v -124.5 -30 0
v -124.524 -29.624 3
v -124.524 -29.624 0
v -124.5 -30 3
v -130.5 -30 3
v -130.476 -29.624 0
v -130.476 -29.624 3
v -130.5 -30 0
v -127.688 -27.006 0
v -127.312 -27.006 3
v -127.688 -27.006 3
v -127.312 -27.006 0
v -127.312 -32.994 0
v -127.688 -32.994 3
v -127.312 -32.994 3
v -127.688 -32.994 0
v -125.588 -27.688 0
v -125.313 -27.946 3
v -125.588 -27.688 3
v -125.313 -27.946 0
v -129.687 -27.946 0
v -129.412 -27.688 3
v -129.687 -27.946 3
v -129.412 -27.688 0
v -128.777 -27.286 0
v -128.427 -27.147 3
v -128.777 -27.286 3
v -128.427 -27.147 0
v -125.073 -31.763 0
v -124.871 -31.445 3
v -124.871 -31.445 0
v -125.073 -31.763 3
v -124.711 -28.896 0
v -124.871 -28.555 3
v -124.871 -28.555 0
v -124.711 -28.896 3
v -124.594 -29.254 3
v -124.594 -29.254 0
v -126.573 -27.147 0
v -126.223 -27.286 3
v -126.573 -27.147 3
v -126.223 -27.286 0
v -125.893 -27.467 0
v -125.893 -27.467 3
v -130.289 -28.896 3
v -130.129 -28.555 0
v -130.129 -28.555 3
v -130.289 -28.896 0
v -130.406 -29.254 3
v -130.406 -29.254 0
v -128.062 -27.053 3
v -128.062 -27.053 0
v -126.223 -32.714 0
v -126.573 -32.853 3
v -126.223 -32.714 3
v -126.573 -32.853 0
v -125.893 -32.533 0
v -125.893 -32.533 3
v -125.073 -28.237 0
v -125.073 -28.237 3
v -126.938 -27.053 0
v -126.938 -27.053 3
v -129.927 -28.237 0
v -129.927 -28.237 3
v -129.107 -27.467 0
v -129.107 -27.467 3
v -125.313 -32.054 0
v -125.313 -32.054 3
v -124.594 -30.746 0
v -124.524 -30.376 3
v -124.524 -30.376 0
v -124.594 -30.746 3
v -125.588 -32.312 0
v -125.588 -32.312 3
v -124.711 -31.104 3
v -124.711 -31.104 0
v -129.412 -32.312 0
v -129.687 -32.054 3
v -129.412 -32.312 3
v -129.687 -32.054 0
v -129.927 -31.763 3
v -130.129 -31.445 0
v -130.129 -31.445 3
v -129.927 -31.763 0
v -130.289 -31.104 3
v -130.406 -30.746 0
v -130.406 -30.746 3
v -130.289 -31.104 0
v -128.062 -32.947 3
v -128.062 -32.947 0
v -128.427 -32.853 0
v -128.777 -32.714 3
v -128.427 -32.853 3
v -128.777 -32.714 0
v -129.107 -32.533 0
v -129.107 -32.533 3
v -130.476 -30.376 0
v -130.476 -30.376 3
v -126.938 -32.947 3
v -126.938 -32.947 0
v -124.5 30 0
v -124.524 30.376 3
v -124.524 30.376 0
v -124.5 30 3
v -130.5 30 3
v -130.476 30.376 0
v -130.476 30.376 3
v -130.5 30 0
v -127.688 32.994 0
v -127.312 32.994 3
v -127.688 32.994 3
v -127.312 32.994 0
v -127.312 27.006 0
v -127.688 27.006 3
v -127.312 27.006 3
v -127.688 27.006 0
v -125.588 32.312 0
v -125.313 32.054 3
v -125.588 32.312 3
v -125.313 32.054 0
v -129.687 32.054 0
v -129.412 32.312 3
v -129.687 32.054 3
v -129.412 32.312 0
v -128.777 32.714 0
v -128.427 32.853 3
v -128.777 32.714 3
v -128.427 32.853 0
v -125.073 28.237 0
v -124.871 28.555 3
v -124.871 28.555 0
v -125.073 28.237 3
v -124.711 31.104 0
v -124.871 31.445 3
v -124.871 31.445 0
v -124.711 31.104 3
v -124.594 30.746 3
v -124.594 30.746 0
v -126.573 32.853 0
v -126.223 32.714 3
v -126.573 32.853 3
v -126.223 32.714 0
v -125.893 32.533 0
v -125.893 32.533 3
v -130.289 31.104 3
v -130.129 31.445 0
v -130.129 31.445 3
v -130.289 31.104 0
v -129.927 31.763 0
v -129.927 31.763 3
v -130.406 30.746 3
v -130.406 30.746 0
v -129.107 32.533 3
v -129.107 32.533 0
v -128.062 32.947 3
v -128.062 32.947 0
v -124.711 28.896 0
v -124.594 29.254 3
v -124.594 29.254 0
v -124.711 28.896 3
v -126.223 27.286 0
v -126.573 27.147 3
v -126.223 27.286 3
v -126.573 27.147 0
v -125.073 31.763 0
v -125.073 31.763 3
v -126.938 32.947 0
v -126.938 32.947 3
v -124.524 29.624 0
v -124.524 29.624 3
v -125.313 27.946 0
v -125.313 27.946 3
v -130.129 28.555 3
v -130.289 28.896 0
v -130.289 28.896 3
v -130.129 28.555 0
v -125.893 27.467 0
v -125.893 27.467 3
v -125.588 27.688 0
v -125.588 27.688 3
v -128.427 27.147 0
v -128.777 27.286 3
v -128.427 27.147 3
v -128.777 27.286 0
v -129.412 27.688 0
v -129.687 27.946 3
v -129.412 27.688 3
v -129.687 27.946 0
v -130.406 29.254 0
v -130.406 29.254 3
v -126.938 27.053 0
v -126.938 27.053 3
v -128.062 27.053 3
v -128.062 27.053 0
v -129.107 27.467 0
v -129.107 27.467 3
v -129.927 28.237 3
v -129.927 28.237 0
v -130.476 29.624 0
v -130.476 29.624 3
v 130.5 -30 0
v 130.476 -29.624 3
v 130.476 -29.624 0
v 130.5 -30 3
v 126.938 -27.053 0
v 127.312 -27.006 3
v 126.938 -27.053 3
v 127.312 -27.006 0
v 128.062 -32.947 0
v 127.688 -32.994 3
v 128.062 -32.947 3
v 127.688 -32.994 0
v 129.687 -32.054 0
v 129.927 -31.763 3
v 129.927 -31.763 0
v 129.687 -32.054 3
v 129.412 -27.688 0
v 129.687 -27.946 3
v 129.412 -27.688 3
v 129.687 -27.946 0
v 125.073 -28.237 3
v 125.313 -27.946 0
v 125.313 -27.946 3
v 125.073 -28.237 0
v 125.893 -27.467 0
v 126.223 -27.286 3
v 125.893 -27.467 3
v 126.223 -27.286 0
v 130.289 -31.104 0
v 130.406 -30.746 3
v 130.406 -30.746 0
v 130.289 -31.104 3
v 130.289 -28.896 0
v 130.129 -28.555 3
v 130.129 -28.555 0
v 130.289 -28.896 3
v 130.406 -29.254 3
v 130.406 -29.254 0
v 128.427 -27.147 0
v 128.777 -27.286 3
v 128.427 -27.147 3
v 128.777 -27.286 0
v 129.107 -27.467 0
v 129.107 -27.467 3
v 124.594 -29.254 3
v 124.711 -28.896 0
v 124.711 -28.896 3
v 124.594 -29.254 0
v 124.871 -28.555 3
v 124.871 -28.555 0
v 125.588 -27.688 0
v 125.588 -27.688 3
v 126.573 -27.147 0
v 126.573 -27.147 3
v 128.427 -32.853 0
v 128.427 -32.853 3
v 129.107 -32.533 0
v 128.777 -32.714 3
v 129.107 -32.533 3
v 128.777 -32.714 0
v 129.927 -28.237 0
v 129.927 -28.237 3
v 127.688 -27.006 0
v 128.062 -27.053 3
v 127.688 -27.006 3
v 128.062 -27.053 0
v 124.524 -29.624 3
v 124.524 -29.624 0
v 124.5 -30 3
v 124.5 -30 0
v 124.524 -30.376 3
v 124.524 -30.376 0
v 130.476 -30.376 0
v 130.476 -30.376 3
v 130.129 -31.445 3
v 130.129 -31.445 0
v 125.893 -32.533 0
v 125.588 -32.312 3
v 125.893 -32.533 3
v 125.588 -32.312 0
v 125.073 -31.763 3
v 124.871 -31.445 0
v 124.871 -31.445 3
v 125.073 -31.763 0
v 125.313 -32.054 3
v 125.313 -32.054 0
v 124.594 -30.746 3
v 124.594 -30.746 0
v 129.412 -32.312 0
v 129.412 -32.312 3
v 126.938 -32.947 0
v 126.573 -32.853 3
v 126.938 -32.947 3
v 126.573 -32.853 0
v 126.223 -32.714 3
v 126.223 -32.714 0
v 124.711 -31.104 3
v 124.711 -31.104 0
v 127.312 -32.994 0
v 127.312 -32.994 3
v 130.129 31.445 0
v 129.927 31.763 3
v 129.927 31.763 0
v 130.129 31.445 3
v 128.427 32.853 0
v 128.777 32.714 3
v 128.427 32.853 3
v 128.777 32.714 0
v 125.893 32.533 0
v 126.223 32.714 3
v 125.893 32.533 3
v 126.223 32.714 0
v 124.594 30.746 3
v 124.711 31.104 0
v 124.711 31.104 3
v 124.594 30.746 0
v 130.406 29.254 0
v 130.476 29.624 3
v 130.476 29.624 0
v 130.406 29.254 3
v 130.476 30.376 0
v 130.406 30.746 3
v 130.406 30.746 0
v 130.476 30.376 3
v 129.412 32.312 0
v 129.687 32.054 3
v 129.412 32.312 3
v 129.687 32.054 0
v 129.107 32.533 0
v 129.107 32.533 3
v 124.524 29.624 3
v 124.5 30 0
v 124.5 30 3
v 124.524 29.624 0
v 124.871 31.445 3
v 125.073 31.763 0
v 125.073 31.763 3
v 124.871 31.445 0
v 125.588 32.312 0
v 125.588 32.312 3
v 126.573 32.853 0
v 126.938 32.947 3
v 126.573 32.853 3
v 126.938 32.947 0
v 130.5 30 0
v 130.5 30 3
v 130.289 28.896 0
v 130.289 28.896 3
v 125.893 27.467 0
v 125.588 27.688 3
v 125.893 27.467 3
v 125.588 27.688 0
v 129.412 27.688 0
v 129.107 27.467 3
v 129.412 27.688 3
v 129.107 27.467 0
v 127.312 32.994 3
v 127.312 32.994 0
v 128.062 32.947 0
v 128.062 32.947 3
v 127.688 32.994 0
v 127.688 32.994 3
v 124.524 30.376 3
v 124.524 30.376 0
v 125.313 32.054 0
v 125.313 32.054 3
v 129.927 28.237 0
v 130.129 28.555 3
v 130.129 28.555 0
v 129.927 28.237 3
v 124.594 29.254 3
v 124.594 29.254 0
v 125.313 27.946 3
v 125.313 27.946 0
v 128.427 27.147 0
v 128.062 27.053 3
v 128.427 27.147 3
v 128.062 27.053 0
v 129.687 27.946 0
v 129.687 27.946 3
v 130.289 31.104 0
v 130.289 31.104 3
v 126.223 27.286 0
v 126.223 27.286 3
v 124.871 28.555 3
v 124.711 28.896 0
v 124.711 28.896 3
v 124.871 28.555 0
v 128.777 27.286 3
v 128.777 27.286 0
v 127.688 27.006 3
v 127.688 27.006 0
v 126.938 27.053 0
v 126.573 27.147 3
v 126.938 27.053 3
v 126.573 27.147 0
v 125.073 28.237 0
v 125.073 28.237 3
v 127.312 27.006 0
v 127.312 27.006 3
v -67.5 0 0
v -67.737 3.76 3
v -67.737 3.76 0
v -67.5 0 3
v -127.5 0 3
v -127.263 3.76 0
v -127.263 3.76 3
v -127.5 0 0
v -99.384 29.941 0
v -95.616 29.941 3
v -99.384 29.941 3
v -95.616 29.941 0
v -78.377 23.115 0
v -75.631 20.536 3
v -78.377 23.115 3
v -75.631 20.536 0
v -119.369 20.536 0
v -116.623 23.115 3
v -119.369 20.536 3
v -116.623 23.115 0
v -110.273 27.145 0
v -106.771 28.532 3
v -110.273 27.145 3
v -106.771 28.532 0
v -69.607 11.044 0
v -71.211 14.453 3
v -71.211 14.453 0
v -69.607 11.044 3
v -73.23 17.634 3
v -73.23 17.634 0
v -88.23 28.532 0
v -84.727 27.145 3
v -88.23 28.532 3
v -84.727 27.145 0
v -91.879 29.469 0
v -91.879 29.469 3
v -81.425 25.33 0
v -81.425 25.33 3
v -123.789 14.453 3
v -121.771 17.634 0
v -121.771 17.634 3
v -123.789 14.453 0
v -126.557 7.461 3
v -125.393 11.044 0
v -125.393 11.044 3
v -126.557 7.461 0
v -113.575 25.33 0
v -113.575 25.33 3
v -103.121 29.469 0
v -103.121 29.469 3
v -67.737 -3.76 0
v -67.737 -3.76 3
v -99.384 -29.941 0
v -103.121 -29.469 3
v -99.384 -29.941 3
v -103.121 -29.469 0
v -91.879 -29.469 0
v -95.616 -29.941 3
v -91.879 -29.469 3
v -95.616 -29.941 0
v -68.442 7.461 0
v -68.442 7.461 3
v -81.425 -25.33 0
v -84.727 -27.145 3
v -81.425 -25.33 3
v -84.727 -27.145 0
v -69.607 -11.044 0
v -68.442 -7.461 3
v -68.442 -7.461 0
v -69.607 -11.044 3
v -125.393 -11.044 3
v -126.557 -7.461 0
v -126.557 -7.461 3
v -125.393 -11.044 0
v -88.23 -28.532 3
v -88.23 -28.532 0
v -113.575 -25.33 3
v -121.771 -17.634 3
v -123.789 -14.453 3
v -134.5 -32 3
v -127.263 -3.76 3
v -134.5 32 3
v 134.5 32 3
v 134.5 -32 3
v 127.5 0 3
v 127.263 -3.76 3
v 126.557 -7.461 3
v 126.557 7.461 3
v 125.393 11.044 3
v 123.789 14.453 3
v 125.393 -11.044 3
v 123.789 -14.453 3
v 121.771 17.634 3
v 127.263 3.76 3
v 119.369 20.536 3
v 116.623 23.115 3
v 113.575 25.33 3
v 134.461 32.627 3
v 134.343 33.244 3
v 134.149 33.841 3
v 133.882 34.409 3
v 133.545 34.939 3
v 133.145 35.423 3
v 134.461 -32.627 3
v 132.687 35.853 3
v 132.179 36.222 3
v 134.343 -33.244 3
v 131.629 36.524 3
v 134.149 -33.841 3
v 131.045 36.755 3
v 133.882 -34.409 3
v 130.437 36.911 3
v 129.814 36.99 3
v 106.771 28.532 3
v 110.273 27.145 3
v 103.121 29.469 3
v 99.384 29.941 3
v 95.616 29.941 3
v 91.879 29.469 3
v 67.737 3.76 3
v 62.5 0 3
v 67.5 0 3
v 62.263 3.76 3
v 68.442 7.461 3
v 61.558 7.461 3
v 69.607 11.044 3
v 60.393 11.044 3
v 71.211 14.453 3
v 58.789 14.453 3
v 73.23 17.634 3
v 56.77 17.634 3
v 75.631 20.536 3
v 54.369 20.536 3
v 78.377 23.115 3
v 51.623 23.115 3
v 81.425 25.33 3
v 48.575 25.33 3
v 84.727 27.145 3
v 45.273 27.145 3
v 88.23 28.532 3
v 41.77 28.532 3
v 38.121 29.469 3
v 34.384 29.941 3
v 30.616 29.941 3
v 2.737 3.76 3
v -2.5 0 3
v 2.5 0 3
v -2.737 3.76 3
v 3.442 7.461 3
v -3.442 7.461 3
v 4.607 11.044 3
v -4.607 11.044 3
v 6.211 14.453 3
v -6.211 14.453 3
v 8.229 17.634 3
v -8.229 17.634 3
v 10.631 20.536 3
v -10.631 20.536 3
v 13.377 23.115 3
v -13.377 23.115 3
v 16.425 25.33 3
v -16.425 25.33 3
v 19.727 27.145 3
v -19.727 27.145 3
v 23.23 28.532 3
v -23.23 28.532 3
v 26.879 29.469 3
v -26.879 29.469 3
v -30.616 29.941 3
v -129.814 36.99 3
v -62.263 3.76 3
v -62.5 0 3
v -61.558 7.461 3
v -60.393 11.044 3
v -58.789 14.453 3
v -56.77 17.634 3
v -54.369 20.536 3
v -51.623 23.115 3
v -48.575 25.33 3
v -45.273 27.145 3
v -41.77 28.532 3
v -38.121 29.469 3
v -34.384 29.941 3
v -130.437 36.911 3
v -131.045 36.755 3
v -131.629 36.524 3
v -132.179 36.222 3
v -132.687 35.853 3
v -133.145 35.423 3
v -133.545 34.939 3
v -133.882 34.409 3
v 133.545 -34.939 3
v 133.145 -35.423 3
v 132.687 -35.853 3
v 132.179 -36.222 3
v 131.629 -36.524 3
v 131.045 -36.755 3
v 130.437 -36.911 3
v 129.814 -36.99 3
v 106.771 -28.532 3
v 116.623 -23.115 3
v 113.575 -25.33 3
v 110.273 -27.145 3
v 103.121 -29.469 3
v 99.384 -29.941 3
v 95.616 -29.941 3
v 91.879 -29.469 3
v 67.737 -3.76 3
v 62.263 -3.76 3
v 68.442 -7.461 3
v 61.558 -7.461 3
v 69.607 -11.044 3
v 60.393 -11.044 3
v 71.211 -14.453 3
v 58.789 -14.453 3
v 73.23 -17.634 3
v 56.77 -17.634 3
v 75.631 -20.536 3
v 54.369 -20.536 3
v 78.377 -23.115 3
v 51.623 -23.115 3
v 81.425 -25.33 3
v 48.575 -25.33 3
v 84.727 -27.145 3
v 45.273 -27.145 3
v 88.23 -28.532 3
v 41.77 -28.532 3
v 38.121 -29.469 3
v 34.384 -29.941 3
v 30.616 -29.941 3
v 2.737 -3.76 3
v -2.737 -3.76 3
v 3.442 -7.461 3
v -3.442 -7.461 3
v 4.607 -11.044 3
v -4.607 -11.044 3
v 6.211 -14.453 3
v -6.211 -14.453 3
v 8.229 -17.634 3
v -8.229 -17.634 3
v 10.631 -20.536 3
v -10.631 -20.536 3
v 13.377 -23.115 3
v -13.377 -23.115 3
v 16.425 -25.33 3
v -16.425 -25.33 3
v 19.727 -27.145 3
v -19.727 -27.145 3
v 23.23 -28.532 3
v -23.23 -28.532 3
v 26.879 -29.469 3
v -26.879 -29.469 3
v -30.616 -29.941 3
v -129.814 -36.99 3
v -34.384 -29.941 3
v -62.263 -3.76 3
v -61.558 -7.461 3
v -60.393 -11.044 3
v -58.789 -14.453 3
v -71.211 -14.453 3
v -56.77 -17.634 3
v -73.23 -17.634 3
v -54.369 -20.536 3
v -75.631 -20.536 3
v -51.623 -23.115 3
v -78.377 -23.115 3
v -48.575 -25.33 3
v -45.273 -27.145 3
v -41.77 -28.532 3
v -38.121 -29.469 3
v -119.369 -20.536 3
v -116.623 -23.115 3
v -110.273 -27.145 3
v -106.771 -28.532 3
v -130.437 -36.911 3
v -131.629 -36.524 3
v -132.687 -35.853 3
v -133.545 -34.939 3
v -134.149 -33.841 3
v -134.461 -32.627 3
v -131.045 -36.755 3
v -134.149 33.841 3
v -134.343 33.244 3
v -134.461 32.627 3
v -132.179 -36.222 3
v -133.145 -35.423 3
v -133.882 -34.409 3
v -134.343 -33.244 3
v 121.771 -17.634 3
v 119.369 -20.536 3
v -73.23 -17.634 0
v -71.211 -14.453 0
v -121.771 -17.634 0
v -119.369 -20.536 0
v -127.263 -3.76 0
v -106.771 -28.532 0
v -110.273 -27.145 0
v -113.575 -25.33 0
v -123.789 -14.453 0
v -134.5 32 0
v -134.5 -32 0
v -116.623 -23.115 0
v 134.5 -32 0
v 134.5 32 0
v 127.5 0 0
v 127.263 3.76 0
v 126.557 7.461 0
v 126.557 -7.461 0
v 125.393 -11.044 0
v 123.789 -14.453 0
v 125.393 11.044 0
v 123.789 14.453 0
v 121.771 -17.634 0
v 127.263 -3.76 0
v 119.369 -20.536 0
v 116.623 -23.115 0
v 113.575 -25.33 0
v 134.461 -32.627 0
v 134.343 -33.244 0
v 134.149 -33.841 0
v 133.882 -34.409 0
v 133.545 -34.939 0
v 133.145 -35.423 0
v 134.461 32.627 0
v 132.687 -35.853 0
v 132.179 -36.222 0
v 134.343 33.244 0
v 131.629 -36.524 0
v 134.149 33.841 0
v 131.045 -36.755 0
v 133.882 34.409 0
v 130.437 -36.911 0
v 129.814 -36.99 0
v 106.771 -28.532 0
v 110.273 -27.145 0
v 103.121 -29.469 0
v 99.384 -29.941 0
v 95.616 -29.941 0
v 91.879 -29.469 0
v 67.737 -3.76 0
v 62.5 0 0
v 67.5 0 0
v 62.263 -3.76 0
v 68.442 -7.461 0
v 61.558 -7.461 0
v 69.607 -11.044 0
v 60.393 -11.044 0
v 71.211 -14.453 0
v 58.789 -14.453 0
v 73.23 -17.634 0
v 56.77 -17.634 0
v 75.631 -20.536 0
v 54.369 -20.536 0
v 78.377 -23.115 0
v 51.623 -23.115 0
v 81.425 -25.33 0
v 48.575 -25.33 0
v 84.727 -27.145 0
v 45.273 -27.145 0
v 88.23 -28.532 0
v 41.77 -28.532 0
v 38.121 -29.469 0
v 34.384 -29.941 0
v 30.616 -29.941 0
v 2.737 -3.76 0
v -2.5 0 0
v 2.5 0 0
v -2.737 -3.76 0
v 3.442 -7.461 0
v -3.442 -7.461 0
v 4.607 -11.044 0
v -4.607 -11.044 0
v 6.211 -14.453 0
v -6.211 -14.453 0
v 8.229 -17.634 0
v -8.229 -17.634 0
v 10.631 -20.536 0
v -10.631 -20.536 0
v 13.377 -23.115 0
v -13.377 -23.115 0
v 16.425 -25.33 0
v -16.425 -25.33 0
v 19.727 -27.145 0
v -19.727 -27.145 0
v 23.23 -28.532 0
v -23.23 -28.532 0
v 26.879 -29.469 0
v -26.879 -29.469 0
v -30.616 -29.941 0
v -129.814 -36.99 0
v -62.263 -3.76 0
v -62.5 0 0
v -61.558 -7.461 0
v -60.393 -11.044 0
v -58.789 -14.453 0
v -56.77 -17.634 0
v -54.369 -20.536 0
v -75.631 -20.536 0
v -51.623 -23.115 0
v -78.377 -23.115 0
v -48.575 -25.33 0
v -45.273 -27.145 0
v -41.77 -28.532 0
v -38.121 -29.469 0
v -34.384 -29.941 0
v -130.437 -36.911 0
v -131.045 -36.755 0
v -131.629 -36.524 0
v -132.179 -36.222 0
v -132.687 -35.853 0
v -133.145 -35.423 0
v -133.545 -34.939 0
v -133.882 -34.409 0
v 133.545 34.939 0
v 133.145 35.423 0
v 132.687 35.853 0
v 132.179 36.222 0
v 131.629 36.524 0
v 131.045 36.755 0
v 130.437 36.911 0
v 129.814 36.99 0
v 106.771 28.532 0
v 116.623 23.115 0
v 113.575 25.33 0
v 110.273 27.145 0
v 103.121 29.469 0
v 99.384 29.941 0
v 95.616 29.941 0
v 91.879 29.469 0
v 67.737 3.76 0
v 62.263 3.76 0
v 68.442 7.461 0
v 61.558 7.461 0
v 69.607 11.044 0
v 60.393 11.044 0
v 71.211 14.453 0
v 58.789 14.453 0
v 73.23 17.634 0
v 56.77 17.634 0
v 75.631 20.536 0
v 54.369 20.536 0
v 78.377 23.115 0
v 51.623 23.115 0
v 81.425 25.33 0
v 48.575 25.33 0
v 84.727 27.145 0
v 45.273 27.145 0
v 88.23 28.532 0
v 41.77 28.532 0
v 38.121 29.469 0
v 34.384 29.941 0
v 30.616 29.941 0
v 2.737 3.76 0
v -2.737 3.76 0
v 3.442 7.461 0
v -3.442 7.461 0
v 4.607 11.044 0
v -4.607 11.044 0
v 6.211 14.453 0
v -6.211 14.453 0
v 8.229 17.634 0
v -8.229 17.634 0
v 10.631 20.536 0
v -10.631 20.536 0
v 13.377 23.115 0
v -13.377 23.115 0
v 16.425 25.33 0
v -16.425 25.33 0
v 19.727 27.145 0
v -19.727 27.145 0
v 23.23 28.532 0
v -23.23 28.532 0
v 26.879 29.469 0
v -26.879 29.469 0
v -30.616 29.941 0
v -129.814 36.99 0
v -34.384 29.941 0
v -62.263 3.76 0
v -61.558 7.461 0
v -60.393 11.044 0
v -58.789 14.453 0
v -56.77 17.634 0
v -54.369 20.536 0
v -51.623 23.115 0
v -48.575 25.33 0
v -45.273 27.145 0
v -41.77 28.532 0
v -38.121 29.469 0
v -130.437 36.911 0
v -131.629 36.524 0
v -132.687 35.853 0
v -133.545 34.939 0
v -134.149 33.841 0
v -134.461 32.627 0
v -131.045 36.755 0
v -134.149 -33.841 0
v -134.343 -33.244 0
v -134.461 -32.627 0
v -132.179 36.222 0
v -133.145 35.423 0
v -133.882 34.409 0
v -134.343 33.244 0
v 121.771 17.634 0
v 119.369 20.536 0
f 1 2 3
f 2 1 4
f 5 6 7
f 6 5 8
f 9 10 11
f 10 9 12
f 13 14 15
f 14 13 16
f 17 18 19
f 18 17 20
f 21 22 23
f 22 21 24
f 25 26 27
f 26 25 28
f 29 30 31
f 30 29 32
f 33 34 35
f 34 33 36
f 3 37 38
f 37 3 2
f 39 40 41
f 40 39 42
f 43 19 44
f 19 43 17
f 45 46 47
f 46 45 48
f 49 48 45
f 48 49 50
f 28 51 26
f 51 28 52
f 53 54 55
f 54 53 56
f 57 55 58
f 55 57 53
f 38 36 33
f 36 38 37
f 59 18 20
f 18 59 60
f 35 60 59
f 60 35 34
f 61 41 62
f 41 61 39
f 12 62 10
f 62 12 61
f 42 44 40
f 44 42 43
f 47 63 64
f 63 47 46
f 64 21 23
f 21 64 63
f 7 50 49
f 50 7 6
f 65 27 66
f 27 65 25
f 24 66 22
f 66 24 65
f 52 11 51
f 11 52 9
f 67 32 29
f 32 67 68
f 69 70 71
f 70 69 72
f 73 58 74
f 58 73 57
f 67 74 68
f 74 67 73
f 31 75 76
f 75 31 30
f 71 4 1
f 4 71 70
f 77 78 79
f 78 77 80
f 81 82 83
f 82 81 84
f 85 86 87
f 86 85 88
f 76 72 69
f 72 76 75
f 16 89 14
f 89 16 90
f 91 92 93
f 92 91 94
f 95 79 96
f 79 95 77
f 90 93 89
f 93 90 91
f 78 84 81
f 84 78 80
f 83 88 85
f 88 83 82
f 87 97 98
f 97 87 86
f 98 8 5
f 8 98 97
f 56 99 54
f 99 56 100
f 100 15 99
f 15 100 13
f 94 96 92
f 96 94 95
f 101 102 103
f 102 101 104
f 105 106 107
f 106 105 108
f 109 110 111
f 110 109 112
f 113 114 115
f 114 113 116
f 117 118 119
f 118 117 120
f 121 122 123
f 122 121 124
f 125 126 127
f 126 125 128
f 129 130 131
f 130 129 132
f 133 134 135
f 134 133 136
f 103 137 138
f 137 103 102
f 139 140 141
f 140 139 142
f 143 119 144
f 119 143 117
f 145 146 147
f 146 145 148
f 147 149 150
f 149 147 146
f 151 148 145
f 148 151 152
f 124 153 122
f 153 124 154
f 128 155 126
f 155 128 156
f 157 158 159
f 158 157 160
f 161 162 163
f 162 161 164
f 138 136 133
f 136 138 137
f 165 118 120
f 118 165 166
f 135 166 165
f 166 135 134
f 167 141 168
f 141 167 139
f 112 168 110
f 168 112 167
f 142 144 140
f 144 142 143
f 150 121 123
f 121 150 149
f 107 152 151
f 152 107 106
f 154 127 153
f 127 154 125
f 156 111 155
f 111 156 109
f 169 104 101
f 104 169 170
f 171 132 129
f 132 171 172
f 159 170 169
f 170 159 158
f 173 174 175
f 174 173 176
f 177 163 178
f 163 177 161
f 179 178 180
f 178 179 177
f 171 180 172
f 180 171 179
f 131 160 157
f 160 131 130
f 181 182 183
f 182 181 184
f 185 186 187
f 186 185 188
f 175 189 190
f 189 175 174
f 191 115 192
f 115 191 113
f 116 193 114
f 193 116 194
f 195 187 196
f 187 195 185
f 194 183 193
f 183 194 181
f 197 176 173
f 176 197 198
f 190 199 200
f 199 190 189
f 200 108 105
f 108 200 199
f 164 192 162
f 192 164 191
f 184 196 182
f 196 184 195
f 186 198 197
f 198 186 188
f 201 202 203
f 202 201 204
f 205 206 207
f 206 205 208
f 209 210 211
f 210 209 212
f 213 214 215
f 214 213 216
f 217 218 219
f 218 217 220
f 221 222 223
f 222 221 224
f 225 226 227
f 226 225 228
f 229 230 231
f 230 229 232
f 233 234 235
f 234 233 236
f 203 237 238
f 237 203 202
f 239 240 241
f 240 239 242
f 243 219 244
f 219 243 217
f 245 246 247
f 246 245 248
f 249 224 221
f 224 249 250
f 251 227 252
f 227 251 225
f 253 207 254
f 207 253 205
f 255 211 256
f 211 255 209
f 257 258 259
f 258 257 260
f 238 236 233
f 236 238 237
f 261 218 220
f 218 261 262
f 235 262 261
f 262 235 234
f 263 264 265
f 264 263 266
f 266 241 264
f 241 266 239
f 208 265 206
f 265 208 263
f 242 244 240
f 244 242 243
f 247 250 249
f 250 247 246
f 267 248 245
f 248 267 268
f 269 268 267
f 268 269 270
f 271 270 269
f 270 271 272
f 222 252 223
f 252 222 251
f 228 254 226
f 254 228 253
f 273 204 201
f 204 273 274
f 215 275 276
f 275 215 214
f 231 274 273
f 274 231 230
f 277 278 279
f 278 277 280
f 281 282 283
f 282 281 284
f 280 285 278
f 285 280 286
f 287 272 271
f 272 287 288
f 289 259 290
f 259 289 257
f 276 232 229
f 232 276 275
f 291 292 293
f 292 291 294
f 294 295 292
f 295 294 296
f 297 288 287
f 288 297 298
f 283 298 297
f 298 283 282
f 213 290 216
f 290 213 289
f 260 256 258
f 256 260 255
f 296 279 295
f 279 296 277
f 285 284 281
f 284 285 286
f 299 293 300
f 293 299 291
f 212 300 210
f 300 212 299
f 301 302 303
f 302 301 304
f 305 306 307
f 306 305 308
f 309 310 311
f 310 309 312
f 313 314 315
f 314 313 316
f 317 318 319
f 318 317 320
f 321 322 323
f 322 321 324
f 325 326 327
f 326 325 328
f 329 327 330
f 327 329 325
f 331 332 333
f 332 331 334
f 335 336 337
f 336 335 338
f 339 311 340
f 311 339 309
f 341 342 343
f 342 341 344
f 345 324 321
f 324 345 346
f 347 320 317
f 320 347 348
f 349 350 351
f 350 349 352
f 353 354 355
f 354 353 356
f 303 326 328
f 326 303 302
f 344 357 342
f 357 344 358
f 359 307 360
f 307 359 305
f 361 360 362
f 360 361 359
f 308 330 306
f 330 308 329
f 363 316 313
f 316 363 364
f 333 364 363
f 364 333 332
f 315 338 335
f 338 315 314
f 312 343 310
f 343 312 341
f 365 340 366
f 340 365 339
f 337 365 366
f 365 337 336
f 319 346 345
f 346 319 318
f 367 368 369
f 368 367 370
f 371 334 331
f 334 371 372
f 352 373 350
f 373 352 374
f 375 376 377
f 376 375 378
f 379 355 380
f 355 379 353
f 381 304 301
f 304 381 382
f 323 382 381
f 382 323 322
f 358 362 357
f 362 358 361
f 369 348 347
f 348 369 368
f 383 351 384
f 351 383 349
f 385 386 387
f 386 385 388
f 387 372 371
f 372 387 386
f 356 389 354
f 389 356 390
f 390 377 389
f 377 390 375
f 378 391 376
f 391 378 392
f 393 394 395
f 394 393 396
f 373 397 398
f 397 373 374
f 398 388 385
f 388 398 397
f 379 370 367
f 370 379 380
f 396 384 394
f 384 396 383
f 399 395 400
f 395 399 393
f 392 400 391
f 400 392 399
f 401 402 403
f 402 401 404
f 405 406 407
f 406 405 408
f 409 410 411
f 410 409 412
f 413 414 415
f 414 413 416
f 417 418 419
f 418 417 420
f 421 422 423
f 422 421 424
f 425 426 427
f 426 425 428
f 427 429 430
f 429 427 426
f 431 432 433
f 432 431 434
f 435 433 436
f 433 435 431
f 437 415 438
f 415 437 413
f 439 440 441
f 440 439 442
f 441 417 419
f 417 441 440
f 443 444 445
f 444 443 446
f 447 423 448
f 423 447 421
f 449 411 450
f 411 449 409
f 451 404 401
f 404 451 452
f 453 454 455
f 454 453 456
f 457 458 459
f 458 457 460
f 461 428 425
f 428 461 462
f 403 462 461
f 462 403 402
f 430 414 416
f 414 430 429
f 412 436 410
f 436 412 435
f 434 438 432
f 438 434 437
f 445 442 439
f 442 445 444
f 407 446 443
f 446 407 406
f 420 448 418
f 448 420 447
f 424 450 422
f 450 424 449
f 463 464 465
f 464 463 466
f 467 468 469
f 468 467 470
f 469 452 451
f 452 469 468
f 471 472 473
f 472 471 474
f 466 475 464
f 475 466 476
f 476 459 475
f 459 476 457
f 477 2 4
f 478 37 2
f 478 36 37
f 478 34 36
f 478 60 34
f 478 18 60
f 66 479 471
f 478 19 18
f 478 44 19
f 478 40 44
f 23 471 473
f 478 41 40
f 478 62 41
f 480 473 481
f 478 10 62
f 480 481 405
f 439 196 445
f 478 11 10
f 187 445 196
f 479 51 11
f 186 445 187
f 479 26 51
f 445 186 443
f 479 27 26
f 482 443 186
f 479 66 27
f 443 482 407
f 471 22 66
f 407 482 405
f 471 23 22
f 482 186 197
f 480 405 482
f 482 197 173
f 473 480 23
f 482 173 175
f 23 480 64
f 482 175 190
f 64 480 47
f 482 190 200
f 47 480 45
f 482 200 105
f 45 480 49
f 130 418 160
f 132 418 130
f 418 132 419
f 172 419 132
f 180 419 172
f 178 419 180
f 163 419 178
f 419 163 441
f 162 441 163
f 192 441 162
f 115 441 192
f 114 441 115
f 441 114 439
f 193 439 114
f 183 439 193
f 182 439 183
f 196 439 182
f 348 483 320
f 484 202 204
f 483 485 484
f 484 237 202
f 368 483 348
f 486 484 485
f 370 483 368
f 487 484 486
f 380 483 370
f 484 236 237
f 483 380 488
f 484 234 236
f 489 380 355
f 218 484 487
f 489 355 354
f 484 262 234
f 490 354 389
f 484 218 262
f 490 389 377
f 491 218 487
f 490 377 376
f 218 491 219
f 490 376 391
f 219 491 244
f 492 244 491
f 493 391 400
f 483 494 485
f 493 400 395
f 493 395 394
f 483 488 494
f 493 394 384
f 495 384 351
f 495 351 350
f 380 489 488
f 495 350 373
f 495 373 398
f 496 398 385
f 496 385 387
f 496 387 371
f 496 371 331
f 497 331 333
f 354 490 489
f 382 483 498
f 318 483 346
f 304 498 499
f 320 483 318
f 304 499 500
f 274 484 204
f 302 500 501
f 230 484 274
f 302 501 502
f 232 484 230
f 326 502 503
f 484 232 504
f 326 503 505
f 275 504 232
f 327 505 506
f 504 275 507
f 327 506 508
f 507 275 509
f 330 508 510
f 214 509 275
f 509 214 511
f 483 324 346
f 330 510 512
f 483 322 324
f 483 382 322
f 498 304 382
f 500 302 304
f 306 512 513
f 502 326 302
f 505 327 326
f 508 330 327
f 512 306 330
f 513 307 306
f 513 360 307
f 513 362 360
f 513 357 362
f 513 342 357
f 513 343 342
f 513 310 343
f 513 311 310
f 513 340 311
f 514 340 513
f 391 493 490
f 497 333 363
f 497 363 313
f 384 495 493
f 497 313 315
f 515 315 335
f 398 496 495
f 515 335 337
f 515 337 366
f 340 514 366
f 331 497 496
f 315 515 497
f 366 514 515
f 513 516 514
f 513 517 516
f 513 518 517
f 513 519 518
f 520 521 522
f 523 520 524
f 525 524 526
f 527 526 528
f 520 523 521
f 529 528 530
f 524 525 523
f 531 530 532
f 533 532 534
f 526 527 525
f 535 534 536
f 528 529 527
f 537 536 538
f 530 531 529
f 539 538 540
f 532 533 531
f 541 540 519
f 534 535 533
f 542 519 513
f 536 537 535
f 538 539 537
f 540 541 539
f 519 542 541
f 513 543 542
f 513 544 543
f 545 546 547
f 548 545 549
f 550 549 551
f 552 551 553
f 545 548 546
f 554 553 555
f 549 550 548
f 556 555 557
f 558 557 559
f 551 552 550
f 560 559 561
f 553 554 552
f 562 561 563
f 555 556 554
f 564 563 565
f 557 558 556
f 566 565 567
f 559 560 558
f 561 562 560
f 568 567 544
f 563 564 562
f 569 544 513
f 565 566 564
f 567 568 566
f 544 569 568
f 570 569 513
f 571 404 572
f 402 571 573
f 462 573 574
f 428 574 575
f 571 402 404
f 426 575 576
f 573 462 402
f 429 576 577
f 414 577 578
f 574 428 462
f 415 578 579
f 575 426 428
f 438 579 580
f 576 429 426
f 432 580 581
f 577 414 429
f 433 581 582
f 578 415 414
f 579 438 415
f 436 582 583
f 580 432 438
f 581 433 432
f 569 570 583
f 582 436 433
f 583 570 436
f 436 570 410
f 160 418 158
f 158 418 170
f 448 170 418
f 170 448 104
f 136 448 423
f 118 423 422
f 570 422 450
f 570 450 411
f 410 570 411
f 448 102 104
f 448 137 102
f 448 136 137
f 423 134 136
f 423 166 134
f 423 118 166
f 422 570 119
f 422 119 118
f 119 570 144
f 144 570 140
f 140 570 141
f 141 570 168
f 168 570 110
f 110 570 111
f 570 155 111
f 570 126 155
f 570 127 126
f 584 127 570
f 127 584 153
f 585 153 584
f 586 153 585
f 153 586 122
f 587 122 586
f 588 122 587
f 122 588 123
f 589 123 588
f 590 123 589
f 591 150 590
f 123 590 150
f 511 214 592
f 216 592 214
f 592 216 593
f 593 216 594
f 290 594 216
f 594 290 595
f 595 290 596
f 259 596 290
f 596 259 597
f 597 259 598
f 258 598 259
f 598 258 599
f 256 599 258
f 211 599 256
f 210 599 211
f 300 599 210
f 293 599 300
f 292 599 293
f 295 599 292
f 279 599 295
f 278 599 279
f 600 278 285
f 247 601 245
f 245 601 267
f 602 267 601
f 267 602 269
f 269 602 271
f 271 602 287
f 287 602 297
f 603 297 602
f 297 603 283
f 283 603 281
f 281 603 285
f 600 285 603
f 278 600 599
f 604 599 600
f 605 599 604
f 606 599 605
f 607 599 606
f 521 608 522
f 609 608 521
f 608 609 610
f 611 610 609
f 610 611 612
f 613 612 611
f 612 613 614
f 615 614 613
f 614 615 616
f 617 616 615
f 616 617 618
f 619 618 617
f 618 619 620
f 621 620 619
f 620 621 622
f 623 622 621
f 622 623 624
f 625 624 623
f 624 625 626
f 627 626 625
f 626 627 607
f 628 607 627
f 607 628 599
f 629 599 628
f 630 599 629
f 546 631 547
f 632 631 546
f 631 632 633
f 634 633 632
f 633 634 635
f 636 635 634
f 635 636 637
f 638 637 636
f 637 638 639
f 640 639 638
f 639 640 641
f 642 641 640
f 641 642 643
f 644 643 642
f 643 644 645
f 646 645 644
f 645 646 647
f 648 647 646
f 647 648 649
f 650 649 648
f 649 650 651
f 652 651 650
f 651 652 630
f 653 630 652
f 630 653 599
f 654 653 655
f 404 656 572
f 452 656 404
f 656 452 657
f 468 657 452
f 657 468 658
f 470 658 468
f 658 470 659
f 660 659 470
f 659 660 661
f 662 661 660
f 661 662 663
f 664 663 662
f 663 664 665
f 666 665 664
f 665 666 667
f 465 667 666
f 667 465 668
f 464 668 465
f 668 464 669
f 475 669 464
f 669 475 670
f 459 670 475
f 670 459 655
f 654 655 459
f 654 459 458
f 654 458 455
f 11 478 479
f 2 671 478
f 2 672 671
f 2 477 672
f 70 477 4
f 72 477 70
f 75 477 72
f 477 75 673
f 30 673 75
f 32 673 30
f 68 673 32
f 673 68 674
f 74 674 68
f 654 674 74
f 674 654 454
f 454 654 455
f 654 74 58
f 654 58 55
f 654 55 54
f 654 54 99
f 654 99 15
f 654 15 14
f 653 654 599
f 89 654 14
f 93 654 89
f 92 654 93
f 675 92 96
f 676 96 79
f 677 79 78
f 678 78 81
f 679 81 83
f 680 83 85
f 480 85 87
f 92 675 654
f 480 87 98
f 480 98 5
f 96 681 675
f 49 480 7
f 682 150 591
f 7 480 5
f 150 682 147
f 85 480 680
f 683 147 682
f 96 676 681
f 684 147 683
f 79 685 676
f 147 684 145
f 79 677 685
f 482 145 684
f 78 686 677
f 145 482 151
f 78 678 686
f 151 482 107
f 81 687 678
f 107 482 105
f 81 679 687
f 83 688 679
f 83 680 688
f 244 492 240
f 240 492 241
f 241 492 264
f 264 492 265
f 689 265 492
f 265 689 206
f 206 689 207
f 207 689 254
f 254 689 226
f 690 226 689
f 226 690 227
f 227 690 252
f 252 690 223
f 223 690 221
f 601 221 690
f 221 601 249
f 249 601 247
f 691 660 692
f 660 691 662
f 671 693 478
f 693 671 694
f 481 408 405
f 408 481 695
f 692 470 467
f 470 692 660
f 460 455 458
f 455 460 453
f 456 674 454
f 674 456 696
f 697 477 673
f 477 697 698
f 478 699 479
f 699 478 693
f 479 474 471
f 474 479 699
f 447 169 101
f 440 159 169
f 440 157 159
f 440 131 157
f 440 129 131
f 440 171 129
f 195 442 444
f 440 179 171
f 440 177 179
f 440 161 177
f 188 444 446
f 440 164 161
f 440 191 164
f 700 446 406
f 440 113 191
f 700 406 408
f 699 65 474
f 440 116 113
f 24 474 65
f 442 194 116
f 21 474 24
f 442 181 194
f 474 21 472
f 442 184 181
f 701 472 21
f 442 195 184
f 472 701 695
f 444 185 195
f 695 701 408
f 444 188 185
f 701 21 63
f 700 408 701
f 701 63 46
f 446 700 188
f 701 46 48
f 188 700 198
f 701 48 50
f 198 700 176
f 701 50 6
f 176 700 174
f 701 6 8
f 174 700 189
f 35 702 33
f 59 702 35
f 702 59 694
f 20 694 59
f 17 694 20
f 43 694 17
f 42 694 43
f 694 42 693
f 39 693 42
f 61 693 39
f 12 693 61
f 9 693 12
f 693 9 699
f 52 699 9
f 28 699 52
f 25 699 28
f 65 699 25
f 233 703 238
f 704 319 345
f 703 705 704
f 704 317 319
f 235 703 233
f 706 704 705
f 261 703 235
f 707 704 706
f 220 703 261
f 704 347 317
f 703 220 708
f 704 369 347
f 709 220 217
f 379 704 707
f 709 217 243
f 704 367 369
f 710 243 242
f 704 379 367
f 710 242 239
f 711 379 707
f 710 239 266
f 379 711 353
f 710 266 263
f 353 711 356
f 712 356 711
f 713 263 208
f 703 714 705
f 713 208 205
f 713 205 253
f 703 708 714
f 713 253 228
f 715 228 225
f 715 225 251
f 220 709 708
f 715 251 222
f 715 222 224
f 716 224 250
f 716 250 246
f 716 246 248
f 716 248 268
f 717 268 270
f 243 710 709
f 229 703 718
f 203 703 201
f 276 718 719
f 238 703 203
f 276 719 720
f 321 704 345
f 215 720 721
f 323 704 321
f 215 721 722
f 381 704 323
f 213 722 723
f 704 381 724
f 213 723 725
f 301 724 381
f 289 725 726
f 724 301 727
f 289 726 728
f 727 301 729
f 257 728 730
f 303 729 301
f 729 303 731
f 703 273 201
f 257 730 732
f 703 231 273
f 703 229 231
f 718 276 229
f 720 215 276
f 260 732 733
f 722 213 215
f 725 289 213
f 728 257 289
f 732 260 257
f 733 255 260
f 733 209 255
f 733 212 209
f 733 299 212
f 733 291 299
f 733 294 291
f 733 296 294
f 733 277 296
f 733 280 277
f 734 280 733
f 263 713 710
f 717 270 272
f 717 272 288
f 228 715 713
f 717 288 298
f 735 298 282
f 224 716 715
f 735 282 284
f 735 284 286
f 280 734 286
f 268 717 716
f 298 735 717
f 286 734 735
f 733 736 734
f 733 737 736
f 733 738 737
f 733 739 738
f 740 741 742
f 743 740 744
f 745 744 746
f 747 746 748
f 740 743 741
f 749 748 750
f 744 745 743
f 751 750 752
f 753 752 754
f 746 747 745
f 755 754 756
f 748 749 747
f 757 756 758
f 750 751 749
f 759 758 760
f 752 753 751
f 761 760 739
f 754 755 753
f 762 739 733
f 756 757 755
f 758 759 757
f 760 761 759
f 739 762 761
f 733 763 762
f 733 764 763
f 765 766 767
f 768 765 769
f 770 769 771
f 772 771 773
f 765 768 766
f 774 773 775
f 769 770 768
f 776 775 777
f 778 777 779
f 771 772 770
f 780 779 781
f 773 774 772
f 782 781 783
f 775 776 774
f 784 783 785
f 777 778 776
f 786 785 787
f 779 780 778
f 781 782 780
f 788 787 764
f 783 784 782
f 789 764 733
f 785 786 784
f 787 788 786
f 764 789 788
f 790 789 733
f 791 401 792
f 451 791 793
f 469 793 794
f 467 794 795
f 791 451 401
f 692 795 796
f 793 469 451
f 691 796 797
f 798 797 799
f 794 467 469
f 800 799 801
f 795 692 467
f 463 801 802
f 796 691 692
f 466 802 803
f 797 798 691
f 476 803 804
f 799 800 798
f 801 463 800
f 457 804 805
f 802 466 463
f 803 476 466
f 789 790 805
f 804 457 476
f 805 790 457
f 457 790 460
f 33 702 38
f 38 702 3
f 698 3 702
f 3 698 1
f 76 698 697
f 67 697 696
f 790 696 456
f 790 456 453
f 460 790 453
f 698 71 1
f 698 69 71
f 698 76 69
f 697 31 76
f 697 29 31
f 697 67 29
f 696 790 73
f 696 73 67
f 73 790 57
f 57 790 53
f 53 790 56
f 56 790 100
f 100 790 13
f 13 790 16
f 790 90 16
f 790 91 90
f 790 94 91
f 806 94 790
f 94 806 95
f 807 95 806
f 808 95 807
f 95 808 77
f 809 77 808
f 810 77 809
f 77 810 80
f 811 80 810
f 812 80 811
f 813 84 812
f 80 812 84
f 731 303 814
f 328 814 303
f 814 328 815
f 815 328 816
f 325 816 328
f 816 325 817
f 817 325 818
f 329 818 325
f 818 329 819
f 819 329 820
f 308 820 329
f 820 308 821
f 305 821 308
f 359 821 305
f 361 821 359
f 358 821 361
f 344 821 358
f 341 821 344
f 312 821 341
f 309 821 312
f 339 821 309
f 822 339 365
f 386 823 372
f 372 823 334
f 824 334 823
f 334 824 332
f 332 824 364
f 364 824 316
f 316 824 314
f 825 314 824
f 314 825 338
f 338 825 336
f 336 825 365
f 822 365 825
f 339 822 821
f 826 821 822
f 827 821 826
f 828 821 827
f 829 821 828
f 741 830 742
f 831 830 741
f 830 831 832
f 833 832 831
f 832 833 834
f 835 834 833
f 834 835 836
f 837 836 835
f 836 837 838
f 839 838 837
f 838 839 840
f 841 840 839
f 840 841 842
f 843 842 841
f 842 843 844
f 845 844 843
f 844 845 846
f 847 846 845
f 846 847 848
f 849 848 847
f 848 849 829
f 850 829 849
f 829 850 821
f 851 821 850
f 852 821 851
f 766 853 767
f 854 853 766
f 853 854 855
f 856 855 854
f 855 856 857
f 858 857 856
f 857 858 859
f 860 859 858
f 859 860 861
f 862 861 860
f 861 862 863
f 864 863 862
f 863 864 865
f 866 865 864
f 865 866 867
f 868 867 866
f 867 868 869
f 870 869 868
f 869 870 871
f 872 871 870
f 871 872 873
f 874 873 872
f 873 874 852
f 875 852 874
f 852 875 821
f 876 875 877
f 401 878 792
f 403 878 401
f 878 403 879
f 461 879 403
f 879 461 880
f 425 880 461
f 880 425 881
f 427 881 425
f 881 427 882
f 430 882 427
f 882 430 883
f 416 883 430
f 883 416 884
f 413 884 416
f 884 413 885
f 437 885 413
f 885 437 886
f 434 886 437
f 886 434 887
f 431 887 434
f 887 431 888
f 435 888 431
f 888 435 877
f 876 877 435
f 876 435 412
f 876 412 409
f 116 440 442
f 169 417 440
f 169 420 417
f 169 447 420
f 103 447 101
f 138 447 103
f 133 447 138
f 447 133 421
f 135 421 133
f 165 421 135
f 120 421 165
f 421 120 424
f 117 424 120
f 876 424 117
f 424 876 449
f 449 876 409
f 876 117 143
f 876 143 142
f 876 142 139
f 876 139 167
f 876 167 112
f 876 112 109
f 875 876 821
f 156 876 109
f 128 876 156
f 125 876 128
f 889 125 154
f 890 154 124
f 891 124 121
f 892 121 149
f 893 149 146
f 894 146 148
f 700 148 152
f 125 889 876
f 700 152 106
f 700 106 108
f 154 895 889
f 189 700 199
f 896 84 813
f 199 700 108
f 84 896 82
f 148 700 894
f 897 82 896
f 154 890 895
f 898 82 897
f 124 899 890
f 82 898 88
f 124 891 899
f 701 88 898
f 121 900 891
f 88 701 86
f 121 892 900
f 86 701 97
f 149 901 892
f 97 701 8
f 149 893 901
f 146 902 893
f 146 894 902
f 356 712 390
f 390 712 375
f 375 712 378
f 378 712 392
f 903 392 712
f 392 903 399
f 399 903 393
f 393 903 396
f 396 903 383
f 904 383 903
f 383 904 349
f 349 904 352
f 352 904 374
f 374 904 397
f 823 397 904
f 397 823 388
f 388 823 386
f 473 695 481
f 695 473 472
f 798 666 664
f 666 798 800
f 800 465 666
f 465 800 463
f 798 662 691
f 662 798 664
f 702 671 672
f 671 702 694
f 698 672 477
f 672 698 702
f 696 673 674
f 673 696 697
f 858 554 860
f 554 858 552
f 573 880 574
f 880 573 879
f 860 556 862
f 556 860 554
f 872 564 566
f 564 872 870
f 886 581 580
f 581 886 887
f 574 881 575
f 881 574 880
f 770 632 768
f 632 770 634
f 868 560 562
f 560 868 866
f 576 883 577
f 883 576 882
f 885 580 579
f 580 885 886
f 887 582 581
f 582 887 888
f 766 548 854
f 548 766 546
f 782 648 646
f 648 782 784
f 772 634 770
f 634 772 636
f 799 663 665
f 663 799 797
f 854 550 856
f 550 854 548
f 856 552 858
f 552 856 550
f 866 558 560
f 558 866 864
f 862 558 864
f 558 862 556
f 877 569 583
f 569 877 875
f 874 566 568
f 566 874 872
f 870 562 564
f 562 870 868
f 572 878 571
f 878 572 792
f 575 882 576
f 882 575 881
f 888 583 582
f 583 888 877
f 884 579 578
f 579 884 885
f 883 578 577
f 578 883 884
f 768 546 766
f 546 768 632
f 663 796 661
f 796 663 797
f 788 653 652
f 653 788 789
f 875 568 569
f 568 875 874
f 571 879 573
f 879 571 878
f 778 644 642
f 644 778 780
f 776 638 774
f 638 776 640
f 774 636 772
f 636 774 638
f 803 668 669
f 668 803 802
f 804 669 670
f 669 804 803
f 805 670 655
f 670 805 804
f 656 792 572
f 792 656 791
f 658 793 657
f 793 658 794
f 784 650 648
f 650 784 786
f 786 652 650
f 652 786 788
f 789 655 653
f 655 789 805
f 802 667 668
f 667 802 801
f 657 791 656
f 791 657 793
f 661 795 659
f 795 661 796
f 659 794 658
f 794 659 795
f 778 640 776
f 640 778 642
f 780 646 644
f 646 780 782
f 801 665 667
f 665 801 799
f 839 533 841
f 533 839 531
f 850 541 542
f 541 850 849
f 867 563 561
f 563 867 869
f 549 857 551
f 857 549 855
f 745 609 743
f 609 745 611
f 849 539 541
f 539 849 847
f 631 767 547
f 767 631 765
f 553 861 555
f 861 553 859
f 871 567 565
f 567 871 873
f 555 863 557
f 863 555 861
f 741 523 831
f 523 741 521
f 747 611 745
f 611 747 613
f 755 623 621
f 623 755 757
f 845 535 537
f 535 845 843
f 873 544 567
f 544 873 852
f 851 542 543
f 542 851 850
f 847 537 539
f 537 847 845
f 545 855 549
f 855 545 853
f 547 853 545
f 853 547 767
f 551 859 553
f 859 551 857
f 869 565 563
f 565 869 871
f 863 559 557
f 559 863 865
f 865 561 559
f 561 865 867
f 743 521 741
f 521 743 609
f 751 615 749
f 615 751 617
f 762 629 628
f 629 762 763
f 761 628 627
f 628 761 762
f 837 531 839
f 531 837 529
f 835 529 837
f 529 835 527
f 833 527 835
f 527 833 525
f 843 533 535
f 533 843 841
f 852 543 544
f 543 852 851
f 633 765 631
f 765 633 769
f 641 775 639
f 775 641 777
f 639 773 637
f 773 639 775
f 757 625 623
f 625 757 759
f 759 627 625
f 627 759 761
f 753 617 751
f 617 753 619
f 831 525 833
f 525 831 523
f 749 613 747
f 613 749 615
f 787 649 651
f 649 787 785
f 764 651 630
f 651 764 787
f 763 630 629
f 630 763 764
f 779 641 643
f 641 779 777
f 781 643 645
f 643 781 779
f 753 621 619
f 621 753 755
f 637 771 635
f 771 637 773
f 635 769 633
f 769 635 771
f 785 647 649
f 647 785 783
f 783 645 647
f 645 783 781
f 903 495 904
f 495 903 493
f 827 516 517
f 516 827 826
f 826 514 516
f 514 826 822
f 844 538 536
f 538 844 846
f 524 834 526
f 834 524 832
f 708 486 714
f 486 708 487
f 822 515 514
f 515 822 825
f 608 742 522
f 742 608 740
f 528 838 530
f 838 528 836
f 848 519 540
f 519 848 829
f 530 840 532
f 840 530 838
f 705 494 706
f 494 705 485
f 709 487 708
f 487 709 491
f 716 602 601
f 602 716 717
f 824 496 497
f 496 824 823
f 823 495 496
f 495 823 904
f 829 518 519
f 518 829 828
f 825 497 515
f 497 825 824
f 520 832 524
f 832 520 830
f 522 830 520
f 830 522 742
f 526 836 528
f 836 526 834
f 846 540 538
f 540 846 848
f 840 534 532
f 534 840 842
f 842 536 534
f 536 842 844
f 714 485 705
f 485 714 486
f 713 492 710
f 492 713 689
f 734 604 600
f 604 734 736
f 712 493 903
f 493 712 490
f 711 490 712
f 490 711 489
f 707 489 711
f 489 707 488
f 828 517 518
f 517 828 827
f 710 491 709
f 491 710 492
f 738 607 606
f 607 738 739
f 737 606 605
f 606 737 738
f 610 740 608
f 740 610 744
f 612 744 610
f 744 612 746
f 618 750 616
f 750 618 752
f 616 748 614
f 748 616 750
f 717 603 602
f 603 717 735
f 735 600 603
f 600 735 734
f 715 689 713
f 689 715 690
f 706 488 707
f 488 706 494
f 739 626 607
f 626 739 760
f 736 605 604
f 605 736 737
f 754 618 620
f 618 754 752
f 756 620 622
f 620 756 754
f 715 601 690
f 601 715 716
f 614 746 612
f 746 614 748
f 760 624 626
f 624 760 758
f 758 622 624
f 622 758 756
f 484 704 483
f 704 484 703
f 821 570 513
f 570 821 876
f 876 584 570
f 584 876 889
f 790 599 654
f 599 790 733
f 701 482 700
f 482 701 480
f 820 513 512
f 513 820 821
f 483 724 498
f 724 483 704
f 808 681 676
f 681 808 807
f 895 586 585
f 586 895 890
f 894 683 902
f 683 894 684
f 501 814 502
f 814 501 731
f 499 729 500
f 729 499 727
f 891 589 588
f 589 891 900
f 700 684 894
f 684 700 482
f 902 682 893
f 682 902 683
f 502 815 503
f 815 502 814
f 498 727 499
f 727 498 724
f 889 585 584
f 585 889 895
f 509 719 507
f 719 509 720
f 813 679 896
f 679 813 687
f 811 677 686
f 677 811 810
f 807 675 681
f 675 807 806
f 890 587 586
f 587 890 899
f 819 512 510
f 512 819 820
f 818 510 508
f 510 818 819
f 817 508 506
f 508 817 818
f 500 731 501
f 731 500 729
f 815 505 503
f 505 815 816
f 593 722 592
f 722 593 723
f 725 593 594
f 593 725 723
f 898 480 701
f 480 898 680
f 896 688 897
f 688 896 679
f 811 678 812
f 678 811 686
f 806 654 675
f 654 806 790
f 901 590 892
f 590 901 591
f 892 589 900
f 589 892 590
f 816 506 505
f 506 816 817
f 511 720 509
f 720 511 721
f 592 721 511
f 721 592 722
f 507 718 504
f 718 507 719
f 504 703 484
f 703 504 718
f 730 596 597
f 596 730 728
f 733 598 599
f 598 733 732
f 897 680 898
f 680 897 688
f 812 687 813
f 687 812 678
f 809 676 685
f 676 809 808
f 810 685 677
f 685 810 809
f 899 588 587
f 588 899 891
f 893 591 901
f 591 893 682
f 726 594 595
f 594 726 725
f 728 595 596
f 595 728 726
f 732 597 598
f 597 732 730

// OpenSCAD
$fn = 50;


difference() {
	union() {
		hull() {
			translate(v = [-129.5000000000, 32.0000000000, 0]) {
				cylinder(h = 3, r = 5);
			}
			translate(v = [129.5000000000, 32.0000000000, 0]) {
				cylinder(h = 3, r = 5);
			}
			translate(v = [-129.5000000000, -32.0000000000, 0]) {
				cylinder(h = 3, r = 5);
			}
			translate(v = [129.5000000000, -32.0000000000, 0]) {
				cylinder(h = 3, r = 5);
			}
		}
	}
	union() {
		#translate(v = [-127.5000000000, -30.0000000000, -100.0000000000]) {
			cylinder(h = 200, r = 3.0000000000);
		}
		#translate(v = [-127.5000000000, 30.0000000000, -100.0000000000]) {
			cylinder(h = 200, r = 3.0000000000);
		}
		#translate(v = [127.5000000000, -30.0000000000, -100.0000000000]) {
			cylinder(h = 200, r = 3.0000000000);
		}
		#translate(v = [127.5000000000, 30.0000000000, -100.0000000000]) {
			cylinder(h = 200, r = 3.0000000000);
		}
		#translate(v = [-97.5000000000, 0, 0]) {
			cylinder(h = 3, r = 30.0000000000);
		}
		#translate(v = [-32.5000000000, 0, 0]) {
			cylinder(h = 3, r = 30.0000000000);
		}
		#translate(v = [32.5000000000, 0, 0]) {
			cylinder(h = 3, r = 30.0000000000);
		}
		#translate(v = [97.5000000000, 0, 0]) {
			cylinder(h = 3, r = 30.0000000000);
		}
	}
}
